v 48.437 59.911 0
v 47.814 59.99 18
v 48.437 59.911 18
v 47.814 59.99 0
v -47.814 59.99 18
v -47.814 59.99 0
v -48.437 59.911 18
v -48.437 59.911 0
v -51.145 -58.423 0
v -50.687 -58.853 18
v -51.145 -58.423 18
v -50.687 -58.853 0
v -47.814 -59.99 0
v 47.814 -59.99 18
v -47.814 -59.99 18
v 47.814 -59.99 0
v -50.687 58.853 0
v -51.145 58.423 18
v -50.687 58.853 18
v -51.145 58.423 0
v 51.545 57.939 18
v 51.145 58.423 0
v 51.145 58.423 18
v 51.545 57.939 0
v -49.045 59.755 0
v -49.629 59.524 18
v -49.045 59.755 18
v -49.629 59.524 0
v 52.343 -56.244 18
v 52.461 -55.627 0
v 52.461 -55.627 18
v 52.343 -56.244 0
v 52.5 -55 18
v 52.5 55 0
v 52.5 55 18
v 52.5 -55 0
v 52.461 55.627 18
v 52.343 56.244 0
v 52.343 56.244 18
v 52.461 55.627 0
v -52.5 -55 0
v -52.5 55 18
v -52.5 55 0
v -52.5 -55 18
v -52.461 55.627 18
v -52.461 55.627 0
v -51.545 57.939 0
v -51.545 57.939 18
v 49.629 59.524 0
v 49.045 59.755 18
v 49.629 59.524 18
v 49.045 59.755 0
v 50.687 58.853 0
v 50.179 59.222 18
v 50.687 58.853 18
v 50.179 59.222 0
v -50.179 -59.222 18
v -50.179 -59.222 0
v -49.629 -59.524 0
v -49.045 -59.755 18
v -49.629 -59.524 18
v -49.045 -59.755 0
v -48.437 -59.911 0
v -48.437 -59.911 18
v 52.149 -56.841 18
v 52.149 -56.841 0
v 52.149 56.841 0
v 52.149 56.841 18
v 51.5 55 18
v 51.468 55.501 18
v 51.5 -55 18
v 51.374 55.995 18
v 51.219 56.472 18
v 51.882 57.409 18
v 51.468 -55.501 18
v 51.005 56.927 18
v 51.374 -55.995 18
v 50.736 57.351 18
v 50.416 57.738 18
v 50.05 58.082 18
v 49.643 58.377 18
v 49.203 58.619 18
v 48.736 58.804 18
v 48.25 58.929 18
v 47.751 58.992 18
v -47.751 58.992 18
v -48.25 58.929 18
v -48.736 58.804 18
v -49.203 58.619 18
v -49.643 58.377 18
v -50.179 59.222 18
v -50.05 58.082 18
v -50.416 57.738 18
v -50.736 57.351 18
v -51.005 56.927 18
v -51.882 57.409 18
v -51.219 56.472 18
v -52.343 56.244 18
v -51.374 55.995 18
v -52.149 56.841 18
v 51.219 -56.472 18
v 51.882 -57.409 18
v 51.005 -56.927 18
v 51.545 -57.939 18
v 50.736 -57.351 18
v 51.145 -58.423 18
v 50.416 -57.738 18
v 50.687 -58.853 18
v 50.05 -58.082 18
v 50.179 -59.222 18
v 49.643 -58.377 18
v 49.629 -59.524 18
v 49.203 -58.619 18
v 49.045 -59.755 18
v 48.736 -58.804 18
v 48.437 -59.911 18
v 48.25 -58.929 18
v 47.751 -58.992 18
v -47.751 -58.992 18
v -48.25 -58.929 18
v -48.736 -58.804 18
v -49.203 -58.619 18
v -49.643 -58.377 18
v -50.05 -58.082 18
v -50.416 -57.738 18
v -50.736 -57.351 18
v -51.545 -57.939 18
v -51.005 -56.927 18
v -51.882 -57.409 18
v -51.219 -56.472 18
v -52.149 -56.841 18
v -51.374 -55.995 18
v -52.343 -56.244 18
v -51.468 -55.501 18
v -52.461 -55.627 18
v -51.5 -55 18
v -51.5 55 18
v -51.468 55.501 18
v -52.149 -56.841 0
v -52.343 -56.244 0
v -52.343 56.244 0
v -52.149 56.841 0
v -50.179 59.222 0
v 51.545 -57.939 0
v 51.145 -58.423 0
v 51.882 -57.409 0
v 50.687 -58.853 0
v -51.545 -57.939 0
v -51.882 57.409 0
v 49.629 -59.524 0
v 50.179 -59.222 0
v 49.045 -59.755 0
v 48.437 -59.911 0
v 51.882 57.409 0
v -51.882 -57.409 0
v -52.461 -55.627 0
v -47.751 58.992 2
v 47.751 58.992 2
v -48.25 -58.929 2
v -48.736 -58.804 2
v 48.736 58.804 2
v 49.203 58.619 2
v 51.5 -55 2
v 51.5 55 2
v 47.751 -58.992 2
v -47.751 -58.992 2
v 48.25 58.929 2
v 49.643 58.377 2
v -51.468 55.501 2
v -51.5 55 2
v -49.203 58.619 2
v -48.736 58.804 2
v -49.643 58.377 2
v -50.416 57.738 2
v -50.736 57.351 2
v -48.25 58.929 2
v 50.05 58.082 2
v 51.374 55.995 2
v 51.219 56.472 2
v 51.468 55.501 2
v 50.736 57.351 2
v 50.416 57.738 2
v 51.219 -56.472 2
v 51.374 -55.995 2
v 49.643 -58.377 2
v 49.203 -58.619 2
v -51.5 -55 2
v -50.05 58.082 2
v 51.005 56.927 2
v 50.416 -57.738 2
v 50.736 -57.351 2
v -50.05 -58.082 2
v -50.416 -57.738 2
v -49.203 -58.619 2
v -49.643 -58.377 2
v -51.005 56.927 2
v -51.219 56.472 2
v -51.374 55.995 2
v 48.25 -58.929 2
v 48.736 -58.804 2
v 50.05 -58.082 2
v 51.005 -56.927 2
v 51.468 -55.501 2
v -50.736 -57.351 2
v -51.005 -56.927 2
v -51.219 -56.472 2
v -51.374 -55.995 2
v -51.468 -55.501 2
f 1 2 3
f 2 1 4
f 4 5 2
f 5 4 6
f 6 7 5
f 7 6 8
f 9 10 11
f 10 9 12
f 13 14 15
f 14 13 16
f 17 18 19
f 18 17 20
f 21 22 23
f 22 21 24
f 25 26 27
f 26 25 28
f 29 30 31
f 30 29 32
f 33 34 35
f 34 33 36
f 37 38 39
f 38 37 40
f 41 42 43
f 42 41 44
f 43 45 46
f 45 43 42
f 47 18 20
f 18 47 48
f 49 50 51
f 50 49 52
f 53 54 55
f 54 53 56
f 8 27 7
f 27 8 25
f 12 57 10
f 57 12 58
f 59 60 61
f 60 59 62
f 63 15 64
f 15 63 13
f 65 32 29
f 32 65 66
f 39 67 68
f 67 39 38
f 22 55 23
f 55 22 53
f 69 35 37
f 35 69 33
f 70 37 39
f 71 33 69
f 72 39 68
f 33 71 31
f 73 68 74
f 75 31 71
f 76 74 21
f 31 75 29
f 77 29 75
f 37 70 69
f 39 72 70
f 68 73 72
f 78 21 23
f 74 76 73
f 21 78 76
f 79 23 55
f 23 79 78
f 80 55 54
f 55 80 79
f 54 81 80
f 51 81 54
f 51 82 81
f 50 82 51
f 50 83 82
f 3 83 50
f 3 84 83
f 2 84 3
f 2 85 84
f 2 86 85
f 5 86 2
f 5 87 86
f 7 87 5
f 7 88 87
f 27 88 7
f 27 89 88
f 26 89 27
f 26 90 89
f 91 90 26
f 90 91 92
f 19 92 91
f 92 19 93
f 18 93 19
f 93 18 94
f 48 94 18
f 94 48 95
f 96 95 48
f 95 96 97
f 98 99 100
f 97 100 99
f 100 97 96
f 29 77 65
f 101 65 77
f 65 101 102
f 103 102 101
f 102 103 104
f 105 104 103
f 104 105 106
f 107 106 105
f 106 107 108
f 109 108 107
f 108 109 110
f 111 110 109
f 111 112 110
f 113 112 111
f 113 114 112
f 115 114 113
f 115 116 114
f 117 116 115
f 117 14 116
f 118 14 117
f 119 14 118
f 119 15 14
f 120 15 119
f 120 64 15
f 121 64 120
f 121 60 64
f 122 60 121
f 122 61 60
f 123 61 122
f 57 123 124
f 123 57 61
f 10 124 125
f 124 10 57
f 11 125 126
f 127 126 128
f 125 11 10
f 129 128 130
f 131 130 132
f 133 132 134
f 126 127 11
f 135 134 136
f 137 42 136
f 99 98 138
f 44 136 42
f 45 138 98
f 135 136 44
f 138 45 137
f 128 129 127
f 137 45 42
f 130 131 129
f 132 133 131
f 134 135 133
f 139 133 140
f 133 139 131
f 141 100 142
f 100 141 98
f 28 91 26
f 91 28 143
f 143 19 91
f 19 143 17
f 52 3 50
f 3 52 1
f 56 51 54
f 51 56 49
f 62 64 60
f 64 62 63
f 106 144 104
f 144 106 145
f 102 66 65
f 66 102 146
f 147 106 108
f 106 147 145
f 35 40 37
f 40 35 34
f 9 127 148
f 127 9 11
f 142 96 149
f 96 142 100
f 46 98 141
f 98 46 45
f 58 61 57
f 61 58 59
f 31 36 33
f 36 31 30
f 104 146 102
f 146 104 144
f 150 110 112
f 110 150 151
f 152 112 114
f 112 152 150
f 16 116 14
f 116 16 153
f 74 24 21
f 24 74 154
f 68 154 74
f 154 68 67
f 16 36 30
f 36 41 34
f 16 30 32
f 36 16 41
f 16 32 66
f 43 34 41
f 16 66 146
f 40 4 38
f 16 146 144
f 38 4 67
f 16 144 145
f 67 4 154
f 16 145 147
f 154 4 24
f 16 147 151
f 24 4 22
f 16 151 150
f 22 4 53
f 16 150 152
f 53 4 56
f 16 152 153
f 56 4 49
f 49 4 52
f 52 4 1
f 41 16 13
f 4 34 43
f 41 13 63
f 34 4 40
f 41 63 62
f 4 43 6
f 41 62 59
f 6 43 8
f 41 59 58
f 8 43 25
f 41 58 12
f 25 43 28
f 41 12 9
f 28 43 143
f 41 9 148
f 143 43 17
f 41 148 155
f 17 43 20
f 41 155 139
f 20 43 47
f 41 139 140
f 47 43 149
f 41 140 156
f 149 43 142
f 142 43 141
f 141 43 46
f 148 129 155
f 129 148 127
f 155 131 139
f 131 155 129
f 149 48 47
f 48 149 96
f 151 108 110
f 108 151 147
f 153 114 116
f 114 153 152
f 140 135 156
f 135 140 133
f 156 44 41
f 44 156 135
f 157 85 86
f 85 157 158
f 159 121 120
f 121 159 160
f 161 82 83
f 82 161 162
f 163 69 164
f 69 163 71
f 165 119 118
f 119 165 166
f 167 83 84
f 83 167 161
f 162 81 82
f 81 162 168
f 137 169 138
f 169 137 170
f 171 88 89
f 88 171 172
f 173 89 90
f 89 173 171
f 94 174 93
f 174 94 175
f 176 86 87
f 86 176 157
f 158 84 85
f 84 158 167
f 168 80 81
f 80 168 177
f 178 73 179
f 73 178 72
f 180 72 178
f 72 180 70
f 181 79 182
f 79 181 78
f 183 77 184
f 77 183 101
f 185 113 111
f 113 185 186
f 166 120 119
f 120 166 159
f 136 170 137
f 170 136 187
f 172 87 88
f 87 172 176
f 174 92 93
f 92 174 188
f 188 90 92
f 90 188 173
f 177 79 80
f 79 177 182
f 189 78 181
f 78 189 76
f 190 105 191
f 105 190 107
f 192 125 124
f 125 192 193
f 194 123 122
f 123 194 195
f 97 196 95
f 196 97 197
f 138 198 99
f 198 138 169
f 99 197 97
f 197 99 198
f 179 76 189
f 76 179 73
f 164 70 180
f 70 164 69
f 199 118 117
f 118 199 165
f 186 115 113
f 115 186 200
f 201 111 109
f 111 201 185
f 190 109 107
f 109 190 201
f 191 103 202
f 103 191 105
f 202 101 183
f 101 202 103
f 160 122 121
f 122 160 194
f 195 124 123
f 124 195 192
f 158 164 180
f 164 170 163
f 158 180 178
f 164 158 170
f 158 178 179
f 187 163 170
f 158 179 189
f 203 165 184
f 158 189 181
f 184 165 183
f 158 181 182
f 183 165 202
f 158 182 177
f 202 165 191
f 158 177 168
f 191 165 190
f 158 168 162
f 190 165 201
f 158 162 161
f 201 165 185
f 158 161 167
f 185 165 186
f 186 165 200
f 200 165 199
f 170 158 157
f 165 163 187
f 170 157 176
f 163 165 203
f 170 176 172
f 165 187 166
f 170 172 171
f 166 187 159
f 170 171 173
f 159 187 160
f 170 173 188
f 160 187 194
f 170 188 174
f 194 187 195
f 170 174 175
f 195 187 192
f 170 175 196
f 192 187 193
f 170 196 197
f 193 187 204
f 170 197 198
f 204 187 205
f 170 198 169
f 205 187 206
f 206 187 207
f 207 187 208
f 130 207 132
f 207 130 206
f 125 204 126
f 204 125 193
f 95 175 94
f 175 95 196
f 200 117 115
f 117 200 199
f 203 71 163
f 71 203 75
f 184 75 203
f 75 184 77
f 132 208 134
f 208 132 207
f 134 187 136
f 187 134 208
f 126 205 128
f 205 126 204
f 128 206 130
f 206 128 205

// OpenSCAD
$fn = 50;


difference() {
	union() {
		hull() {
			translate(v = [-47.5000000000, 55.0000000000, 0]) {
				cylinder(h = 18, r = 5);
			}
			translate(v = [47.5000000000, 55.0000000000, 0]) {
				cylinder(h = 18, r = 5);
			}
			translate(v = [-47.5000000000, -55.0000000000, 0]) {
				cylinder(h = 18, r = 5);
			}
			translate(v = [47.5000000000, -55.0000000000, 0]) {
				cylinder(h = 18, r = 5);
			}
		}
	}
	union() {
		translate(v = [0, 0, 2]) {
			hull() {
				translate(v = [-47.5000000000, 55.0000000000, 0]) {
					cylinder(h = 16, r = 4);
				}
				translate(v = [47.5000000000, 55.0000000000, 0]) {
					cylinder(h = 16, r = 4);
				}
				translate(v = [-47.5000000000, -55.0000000000, 0]) {
					cylinder(h = 16, r = 4);
				}
				translate(v = [47.5000000000, -55.0000000000, 0]) {
					cylinder(h = 16, r = 4);
				}
			}
		}
	}
}
